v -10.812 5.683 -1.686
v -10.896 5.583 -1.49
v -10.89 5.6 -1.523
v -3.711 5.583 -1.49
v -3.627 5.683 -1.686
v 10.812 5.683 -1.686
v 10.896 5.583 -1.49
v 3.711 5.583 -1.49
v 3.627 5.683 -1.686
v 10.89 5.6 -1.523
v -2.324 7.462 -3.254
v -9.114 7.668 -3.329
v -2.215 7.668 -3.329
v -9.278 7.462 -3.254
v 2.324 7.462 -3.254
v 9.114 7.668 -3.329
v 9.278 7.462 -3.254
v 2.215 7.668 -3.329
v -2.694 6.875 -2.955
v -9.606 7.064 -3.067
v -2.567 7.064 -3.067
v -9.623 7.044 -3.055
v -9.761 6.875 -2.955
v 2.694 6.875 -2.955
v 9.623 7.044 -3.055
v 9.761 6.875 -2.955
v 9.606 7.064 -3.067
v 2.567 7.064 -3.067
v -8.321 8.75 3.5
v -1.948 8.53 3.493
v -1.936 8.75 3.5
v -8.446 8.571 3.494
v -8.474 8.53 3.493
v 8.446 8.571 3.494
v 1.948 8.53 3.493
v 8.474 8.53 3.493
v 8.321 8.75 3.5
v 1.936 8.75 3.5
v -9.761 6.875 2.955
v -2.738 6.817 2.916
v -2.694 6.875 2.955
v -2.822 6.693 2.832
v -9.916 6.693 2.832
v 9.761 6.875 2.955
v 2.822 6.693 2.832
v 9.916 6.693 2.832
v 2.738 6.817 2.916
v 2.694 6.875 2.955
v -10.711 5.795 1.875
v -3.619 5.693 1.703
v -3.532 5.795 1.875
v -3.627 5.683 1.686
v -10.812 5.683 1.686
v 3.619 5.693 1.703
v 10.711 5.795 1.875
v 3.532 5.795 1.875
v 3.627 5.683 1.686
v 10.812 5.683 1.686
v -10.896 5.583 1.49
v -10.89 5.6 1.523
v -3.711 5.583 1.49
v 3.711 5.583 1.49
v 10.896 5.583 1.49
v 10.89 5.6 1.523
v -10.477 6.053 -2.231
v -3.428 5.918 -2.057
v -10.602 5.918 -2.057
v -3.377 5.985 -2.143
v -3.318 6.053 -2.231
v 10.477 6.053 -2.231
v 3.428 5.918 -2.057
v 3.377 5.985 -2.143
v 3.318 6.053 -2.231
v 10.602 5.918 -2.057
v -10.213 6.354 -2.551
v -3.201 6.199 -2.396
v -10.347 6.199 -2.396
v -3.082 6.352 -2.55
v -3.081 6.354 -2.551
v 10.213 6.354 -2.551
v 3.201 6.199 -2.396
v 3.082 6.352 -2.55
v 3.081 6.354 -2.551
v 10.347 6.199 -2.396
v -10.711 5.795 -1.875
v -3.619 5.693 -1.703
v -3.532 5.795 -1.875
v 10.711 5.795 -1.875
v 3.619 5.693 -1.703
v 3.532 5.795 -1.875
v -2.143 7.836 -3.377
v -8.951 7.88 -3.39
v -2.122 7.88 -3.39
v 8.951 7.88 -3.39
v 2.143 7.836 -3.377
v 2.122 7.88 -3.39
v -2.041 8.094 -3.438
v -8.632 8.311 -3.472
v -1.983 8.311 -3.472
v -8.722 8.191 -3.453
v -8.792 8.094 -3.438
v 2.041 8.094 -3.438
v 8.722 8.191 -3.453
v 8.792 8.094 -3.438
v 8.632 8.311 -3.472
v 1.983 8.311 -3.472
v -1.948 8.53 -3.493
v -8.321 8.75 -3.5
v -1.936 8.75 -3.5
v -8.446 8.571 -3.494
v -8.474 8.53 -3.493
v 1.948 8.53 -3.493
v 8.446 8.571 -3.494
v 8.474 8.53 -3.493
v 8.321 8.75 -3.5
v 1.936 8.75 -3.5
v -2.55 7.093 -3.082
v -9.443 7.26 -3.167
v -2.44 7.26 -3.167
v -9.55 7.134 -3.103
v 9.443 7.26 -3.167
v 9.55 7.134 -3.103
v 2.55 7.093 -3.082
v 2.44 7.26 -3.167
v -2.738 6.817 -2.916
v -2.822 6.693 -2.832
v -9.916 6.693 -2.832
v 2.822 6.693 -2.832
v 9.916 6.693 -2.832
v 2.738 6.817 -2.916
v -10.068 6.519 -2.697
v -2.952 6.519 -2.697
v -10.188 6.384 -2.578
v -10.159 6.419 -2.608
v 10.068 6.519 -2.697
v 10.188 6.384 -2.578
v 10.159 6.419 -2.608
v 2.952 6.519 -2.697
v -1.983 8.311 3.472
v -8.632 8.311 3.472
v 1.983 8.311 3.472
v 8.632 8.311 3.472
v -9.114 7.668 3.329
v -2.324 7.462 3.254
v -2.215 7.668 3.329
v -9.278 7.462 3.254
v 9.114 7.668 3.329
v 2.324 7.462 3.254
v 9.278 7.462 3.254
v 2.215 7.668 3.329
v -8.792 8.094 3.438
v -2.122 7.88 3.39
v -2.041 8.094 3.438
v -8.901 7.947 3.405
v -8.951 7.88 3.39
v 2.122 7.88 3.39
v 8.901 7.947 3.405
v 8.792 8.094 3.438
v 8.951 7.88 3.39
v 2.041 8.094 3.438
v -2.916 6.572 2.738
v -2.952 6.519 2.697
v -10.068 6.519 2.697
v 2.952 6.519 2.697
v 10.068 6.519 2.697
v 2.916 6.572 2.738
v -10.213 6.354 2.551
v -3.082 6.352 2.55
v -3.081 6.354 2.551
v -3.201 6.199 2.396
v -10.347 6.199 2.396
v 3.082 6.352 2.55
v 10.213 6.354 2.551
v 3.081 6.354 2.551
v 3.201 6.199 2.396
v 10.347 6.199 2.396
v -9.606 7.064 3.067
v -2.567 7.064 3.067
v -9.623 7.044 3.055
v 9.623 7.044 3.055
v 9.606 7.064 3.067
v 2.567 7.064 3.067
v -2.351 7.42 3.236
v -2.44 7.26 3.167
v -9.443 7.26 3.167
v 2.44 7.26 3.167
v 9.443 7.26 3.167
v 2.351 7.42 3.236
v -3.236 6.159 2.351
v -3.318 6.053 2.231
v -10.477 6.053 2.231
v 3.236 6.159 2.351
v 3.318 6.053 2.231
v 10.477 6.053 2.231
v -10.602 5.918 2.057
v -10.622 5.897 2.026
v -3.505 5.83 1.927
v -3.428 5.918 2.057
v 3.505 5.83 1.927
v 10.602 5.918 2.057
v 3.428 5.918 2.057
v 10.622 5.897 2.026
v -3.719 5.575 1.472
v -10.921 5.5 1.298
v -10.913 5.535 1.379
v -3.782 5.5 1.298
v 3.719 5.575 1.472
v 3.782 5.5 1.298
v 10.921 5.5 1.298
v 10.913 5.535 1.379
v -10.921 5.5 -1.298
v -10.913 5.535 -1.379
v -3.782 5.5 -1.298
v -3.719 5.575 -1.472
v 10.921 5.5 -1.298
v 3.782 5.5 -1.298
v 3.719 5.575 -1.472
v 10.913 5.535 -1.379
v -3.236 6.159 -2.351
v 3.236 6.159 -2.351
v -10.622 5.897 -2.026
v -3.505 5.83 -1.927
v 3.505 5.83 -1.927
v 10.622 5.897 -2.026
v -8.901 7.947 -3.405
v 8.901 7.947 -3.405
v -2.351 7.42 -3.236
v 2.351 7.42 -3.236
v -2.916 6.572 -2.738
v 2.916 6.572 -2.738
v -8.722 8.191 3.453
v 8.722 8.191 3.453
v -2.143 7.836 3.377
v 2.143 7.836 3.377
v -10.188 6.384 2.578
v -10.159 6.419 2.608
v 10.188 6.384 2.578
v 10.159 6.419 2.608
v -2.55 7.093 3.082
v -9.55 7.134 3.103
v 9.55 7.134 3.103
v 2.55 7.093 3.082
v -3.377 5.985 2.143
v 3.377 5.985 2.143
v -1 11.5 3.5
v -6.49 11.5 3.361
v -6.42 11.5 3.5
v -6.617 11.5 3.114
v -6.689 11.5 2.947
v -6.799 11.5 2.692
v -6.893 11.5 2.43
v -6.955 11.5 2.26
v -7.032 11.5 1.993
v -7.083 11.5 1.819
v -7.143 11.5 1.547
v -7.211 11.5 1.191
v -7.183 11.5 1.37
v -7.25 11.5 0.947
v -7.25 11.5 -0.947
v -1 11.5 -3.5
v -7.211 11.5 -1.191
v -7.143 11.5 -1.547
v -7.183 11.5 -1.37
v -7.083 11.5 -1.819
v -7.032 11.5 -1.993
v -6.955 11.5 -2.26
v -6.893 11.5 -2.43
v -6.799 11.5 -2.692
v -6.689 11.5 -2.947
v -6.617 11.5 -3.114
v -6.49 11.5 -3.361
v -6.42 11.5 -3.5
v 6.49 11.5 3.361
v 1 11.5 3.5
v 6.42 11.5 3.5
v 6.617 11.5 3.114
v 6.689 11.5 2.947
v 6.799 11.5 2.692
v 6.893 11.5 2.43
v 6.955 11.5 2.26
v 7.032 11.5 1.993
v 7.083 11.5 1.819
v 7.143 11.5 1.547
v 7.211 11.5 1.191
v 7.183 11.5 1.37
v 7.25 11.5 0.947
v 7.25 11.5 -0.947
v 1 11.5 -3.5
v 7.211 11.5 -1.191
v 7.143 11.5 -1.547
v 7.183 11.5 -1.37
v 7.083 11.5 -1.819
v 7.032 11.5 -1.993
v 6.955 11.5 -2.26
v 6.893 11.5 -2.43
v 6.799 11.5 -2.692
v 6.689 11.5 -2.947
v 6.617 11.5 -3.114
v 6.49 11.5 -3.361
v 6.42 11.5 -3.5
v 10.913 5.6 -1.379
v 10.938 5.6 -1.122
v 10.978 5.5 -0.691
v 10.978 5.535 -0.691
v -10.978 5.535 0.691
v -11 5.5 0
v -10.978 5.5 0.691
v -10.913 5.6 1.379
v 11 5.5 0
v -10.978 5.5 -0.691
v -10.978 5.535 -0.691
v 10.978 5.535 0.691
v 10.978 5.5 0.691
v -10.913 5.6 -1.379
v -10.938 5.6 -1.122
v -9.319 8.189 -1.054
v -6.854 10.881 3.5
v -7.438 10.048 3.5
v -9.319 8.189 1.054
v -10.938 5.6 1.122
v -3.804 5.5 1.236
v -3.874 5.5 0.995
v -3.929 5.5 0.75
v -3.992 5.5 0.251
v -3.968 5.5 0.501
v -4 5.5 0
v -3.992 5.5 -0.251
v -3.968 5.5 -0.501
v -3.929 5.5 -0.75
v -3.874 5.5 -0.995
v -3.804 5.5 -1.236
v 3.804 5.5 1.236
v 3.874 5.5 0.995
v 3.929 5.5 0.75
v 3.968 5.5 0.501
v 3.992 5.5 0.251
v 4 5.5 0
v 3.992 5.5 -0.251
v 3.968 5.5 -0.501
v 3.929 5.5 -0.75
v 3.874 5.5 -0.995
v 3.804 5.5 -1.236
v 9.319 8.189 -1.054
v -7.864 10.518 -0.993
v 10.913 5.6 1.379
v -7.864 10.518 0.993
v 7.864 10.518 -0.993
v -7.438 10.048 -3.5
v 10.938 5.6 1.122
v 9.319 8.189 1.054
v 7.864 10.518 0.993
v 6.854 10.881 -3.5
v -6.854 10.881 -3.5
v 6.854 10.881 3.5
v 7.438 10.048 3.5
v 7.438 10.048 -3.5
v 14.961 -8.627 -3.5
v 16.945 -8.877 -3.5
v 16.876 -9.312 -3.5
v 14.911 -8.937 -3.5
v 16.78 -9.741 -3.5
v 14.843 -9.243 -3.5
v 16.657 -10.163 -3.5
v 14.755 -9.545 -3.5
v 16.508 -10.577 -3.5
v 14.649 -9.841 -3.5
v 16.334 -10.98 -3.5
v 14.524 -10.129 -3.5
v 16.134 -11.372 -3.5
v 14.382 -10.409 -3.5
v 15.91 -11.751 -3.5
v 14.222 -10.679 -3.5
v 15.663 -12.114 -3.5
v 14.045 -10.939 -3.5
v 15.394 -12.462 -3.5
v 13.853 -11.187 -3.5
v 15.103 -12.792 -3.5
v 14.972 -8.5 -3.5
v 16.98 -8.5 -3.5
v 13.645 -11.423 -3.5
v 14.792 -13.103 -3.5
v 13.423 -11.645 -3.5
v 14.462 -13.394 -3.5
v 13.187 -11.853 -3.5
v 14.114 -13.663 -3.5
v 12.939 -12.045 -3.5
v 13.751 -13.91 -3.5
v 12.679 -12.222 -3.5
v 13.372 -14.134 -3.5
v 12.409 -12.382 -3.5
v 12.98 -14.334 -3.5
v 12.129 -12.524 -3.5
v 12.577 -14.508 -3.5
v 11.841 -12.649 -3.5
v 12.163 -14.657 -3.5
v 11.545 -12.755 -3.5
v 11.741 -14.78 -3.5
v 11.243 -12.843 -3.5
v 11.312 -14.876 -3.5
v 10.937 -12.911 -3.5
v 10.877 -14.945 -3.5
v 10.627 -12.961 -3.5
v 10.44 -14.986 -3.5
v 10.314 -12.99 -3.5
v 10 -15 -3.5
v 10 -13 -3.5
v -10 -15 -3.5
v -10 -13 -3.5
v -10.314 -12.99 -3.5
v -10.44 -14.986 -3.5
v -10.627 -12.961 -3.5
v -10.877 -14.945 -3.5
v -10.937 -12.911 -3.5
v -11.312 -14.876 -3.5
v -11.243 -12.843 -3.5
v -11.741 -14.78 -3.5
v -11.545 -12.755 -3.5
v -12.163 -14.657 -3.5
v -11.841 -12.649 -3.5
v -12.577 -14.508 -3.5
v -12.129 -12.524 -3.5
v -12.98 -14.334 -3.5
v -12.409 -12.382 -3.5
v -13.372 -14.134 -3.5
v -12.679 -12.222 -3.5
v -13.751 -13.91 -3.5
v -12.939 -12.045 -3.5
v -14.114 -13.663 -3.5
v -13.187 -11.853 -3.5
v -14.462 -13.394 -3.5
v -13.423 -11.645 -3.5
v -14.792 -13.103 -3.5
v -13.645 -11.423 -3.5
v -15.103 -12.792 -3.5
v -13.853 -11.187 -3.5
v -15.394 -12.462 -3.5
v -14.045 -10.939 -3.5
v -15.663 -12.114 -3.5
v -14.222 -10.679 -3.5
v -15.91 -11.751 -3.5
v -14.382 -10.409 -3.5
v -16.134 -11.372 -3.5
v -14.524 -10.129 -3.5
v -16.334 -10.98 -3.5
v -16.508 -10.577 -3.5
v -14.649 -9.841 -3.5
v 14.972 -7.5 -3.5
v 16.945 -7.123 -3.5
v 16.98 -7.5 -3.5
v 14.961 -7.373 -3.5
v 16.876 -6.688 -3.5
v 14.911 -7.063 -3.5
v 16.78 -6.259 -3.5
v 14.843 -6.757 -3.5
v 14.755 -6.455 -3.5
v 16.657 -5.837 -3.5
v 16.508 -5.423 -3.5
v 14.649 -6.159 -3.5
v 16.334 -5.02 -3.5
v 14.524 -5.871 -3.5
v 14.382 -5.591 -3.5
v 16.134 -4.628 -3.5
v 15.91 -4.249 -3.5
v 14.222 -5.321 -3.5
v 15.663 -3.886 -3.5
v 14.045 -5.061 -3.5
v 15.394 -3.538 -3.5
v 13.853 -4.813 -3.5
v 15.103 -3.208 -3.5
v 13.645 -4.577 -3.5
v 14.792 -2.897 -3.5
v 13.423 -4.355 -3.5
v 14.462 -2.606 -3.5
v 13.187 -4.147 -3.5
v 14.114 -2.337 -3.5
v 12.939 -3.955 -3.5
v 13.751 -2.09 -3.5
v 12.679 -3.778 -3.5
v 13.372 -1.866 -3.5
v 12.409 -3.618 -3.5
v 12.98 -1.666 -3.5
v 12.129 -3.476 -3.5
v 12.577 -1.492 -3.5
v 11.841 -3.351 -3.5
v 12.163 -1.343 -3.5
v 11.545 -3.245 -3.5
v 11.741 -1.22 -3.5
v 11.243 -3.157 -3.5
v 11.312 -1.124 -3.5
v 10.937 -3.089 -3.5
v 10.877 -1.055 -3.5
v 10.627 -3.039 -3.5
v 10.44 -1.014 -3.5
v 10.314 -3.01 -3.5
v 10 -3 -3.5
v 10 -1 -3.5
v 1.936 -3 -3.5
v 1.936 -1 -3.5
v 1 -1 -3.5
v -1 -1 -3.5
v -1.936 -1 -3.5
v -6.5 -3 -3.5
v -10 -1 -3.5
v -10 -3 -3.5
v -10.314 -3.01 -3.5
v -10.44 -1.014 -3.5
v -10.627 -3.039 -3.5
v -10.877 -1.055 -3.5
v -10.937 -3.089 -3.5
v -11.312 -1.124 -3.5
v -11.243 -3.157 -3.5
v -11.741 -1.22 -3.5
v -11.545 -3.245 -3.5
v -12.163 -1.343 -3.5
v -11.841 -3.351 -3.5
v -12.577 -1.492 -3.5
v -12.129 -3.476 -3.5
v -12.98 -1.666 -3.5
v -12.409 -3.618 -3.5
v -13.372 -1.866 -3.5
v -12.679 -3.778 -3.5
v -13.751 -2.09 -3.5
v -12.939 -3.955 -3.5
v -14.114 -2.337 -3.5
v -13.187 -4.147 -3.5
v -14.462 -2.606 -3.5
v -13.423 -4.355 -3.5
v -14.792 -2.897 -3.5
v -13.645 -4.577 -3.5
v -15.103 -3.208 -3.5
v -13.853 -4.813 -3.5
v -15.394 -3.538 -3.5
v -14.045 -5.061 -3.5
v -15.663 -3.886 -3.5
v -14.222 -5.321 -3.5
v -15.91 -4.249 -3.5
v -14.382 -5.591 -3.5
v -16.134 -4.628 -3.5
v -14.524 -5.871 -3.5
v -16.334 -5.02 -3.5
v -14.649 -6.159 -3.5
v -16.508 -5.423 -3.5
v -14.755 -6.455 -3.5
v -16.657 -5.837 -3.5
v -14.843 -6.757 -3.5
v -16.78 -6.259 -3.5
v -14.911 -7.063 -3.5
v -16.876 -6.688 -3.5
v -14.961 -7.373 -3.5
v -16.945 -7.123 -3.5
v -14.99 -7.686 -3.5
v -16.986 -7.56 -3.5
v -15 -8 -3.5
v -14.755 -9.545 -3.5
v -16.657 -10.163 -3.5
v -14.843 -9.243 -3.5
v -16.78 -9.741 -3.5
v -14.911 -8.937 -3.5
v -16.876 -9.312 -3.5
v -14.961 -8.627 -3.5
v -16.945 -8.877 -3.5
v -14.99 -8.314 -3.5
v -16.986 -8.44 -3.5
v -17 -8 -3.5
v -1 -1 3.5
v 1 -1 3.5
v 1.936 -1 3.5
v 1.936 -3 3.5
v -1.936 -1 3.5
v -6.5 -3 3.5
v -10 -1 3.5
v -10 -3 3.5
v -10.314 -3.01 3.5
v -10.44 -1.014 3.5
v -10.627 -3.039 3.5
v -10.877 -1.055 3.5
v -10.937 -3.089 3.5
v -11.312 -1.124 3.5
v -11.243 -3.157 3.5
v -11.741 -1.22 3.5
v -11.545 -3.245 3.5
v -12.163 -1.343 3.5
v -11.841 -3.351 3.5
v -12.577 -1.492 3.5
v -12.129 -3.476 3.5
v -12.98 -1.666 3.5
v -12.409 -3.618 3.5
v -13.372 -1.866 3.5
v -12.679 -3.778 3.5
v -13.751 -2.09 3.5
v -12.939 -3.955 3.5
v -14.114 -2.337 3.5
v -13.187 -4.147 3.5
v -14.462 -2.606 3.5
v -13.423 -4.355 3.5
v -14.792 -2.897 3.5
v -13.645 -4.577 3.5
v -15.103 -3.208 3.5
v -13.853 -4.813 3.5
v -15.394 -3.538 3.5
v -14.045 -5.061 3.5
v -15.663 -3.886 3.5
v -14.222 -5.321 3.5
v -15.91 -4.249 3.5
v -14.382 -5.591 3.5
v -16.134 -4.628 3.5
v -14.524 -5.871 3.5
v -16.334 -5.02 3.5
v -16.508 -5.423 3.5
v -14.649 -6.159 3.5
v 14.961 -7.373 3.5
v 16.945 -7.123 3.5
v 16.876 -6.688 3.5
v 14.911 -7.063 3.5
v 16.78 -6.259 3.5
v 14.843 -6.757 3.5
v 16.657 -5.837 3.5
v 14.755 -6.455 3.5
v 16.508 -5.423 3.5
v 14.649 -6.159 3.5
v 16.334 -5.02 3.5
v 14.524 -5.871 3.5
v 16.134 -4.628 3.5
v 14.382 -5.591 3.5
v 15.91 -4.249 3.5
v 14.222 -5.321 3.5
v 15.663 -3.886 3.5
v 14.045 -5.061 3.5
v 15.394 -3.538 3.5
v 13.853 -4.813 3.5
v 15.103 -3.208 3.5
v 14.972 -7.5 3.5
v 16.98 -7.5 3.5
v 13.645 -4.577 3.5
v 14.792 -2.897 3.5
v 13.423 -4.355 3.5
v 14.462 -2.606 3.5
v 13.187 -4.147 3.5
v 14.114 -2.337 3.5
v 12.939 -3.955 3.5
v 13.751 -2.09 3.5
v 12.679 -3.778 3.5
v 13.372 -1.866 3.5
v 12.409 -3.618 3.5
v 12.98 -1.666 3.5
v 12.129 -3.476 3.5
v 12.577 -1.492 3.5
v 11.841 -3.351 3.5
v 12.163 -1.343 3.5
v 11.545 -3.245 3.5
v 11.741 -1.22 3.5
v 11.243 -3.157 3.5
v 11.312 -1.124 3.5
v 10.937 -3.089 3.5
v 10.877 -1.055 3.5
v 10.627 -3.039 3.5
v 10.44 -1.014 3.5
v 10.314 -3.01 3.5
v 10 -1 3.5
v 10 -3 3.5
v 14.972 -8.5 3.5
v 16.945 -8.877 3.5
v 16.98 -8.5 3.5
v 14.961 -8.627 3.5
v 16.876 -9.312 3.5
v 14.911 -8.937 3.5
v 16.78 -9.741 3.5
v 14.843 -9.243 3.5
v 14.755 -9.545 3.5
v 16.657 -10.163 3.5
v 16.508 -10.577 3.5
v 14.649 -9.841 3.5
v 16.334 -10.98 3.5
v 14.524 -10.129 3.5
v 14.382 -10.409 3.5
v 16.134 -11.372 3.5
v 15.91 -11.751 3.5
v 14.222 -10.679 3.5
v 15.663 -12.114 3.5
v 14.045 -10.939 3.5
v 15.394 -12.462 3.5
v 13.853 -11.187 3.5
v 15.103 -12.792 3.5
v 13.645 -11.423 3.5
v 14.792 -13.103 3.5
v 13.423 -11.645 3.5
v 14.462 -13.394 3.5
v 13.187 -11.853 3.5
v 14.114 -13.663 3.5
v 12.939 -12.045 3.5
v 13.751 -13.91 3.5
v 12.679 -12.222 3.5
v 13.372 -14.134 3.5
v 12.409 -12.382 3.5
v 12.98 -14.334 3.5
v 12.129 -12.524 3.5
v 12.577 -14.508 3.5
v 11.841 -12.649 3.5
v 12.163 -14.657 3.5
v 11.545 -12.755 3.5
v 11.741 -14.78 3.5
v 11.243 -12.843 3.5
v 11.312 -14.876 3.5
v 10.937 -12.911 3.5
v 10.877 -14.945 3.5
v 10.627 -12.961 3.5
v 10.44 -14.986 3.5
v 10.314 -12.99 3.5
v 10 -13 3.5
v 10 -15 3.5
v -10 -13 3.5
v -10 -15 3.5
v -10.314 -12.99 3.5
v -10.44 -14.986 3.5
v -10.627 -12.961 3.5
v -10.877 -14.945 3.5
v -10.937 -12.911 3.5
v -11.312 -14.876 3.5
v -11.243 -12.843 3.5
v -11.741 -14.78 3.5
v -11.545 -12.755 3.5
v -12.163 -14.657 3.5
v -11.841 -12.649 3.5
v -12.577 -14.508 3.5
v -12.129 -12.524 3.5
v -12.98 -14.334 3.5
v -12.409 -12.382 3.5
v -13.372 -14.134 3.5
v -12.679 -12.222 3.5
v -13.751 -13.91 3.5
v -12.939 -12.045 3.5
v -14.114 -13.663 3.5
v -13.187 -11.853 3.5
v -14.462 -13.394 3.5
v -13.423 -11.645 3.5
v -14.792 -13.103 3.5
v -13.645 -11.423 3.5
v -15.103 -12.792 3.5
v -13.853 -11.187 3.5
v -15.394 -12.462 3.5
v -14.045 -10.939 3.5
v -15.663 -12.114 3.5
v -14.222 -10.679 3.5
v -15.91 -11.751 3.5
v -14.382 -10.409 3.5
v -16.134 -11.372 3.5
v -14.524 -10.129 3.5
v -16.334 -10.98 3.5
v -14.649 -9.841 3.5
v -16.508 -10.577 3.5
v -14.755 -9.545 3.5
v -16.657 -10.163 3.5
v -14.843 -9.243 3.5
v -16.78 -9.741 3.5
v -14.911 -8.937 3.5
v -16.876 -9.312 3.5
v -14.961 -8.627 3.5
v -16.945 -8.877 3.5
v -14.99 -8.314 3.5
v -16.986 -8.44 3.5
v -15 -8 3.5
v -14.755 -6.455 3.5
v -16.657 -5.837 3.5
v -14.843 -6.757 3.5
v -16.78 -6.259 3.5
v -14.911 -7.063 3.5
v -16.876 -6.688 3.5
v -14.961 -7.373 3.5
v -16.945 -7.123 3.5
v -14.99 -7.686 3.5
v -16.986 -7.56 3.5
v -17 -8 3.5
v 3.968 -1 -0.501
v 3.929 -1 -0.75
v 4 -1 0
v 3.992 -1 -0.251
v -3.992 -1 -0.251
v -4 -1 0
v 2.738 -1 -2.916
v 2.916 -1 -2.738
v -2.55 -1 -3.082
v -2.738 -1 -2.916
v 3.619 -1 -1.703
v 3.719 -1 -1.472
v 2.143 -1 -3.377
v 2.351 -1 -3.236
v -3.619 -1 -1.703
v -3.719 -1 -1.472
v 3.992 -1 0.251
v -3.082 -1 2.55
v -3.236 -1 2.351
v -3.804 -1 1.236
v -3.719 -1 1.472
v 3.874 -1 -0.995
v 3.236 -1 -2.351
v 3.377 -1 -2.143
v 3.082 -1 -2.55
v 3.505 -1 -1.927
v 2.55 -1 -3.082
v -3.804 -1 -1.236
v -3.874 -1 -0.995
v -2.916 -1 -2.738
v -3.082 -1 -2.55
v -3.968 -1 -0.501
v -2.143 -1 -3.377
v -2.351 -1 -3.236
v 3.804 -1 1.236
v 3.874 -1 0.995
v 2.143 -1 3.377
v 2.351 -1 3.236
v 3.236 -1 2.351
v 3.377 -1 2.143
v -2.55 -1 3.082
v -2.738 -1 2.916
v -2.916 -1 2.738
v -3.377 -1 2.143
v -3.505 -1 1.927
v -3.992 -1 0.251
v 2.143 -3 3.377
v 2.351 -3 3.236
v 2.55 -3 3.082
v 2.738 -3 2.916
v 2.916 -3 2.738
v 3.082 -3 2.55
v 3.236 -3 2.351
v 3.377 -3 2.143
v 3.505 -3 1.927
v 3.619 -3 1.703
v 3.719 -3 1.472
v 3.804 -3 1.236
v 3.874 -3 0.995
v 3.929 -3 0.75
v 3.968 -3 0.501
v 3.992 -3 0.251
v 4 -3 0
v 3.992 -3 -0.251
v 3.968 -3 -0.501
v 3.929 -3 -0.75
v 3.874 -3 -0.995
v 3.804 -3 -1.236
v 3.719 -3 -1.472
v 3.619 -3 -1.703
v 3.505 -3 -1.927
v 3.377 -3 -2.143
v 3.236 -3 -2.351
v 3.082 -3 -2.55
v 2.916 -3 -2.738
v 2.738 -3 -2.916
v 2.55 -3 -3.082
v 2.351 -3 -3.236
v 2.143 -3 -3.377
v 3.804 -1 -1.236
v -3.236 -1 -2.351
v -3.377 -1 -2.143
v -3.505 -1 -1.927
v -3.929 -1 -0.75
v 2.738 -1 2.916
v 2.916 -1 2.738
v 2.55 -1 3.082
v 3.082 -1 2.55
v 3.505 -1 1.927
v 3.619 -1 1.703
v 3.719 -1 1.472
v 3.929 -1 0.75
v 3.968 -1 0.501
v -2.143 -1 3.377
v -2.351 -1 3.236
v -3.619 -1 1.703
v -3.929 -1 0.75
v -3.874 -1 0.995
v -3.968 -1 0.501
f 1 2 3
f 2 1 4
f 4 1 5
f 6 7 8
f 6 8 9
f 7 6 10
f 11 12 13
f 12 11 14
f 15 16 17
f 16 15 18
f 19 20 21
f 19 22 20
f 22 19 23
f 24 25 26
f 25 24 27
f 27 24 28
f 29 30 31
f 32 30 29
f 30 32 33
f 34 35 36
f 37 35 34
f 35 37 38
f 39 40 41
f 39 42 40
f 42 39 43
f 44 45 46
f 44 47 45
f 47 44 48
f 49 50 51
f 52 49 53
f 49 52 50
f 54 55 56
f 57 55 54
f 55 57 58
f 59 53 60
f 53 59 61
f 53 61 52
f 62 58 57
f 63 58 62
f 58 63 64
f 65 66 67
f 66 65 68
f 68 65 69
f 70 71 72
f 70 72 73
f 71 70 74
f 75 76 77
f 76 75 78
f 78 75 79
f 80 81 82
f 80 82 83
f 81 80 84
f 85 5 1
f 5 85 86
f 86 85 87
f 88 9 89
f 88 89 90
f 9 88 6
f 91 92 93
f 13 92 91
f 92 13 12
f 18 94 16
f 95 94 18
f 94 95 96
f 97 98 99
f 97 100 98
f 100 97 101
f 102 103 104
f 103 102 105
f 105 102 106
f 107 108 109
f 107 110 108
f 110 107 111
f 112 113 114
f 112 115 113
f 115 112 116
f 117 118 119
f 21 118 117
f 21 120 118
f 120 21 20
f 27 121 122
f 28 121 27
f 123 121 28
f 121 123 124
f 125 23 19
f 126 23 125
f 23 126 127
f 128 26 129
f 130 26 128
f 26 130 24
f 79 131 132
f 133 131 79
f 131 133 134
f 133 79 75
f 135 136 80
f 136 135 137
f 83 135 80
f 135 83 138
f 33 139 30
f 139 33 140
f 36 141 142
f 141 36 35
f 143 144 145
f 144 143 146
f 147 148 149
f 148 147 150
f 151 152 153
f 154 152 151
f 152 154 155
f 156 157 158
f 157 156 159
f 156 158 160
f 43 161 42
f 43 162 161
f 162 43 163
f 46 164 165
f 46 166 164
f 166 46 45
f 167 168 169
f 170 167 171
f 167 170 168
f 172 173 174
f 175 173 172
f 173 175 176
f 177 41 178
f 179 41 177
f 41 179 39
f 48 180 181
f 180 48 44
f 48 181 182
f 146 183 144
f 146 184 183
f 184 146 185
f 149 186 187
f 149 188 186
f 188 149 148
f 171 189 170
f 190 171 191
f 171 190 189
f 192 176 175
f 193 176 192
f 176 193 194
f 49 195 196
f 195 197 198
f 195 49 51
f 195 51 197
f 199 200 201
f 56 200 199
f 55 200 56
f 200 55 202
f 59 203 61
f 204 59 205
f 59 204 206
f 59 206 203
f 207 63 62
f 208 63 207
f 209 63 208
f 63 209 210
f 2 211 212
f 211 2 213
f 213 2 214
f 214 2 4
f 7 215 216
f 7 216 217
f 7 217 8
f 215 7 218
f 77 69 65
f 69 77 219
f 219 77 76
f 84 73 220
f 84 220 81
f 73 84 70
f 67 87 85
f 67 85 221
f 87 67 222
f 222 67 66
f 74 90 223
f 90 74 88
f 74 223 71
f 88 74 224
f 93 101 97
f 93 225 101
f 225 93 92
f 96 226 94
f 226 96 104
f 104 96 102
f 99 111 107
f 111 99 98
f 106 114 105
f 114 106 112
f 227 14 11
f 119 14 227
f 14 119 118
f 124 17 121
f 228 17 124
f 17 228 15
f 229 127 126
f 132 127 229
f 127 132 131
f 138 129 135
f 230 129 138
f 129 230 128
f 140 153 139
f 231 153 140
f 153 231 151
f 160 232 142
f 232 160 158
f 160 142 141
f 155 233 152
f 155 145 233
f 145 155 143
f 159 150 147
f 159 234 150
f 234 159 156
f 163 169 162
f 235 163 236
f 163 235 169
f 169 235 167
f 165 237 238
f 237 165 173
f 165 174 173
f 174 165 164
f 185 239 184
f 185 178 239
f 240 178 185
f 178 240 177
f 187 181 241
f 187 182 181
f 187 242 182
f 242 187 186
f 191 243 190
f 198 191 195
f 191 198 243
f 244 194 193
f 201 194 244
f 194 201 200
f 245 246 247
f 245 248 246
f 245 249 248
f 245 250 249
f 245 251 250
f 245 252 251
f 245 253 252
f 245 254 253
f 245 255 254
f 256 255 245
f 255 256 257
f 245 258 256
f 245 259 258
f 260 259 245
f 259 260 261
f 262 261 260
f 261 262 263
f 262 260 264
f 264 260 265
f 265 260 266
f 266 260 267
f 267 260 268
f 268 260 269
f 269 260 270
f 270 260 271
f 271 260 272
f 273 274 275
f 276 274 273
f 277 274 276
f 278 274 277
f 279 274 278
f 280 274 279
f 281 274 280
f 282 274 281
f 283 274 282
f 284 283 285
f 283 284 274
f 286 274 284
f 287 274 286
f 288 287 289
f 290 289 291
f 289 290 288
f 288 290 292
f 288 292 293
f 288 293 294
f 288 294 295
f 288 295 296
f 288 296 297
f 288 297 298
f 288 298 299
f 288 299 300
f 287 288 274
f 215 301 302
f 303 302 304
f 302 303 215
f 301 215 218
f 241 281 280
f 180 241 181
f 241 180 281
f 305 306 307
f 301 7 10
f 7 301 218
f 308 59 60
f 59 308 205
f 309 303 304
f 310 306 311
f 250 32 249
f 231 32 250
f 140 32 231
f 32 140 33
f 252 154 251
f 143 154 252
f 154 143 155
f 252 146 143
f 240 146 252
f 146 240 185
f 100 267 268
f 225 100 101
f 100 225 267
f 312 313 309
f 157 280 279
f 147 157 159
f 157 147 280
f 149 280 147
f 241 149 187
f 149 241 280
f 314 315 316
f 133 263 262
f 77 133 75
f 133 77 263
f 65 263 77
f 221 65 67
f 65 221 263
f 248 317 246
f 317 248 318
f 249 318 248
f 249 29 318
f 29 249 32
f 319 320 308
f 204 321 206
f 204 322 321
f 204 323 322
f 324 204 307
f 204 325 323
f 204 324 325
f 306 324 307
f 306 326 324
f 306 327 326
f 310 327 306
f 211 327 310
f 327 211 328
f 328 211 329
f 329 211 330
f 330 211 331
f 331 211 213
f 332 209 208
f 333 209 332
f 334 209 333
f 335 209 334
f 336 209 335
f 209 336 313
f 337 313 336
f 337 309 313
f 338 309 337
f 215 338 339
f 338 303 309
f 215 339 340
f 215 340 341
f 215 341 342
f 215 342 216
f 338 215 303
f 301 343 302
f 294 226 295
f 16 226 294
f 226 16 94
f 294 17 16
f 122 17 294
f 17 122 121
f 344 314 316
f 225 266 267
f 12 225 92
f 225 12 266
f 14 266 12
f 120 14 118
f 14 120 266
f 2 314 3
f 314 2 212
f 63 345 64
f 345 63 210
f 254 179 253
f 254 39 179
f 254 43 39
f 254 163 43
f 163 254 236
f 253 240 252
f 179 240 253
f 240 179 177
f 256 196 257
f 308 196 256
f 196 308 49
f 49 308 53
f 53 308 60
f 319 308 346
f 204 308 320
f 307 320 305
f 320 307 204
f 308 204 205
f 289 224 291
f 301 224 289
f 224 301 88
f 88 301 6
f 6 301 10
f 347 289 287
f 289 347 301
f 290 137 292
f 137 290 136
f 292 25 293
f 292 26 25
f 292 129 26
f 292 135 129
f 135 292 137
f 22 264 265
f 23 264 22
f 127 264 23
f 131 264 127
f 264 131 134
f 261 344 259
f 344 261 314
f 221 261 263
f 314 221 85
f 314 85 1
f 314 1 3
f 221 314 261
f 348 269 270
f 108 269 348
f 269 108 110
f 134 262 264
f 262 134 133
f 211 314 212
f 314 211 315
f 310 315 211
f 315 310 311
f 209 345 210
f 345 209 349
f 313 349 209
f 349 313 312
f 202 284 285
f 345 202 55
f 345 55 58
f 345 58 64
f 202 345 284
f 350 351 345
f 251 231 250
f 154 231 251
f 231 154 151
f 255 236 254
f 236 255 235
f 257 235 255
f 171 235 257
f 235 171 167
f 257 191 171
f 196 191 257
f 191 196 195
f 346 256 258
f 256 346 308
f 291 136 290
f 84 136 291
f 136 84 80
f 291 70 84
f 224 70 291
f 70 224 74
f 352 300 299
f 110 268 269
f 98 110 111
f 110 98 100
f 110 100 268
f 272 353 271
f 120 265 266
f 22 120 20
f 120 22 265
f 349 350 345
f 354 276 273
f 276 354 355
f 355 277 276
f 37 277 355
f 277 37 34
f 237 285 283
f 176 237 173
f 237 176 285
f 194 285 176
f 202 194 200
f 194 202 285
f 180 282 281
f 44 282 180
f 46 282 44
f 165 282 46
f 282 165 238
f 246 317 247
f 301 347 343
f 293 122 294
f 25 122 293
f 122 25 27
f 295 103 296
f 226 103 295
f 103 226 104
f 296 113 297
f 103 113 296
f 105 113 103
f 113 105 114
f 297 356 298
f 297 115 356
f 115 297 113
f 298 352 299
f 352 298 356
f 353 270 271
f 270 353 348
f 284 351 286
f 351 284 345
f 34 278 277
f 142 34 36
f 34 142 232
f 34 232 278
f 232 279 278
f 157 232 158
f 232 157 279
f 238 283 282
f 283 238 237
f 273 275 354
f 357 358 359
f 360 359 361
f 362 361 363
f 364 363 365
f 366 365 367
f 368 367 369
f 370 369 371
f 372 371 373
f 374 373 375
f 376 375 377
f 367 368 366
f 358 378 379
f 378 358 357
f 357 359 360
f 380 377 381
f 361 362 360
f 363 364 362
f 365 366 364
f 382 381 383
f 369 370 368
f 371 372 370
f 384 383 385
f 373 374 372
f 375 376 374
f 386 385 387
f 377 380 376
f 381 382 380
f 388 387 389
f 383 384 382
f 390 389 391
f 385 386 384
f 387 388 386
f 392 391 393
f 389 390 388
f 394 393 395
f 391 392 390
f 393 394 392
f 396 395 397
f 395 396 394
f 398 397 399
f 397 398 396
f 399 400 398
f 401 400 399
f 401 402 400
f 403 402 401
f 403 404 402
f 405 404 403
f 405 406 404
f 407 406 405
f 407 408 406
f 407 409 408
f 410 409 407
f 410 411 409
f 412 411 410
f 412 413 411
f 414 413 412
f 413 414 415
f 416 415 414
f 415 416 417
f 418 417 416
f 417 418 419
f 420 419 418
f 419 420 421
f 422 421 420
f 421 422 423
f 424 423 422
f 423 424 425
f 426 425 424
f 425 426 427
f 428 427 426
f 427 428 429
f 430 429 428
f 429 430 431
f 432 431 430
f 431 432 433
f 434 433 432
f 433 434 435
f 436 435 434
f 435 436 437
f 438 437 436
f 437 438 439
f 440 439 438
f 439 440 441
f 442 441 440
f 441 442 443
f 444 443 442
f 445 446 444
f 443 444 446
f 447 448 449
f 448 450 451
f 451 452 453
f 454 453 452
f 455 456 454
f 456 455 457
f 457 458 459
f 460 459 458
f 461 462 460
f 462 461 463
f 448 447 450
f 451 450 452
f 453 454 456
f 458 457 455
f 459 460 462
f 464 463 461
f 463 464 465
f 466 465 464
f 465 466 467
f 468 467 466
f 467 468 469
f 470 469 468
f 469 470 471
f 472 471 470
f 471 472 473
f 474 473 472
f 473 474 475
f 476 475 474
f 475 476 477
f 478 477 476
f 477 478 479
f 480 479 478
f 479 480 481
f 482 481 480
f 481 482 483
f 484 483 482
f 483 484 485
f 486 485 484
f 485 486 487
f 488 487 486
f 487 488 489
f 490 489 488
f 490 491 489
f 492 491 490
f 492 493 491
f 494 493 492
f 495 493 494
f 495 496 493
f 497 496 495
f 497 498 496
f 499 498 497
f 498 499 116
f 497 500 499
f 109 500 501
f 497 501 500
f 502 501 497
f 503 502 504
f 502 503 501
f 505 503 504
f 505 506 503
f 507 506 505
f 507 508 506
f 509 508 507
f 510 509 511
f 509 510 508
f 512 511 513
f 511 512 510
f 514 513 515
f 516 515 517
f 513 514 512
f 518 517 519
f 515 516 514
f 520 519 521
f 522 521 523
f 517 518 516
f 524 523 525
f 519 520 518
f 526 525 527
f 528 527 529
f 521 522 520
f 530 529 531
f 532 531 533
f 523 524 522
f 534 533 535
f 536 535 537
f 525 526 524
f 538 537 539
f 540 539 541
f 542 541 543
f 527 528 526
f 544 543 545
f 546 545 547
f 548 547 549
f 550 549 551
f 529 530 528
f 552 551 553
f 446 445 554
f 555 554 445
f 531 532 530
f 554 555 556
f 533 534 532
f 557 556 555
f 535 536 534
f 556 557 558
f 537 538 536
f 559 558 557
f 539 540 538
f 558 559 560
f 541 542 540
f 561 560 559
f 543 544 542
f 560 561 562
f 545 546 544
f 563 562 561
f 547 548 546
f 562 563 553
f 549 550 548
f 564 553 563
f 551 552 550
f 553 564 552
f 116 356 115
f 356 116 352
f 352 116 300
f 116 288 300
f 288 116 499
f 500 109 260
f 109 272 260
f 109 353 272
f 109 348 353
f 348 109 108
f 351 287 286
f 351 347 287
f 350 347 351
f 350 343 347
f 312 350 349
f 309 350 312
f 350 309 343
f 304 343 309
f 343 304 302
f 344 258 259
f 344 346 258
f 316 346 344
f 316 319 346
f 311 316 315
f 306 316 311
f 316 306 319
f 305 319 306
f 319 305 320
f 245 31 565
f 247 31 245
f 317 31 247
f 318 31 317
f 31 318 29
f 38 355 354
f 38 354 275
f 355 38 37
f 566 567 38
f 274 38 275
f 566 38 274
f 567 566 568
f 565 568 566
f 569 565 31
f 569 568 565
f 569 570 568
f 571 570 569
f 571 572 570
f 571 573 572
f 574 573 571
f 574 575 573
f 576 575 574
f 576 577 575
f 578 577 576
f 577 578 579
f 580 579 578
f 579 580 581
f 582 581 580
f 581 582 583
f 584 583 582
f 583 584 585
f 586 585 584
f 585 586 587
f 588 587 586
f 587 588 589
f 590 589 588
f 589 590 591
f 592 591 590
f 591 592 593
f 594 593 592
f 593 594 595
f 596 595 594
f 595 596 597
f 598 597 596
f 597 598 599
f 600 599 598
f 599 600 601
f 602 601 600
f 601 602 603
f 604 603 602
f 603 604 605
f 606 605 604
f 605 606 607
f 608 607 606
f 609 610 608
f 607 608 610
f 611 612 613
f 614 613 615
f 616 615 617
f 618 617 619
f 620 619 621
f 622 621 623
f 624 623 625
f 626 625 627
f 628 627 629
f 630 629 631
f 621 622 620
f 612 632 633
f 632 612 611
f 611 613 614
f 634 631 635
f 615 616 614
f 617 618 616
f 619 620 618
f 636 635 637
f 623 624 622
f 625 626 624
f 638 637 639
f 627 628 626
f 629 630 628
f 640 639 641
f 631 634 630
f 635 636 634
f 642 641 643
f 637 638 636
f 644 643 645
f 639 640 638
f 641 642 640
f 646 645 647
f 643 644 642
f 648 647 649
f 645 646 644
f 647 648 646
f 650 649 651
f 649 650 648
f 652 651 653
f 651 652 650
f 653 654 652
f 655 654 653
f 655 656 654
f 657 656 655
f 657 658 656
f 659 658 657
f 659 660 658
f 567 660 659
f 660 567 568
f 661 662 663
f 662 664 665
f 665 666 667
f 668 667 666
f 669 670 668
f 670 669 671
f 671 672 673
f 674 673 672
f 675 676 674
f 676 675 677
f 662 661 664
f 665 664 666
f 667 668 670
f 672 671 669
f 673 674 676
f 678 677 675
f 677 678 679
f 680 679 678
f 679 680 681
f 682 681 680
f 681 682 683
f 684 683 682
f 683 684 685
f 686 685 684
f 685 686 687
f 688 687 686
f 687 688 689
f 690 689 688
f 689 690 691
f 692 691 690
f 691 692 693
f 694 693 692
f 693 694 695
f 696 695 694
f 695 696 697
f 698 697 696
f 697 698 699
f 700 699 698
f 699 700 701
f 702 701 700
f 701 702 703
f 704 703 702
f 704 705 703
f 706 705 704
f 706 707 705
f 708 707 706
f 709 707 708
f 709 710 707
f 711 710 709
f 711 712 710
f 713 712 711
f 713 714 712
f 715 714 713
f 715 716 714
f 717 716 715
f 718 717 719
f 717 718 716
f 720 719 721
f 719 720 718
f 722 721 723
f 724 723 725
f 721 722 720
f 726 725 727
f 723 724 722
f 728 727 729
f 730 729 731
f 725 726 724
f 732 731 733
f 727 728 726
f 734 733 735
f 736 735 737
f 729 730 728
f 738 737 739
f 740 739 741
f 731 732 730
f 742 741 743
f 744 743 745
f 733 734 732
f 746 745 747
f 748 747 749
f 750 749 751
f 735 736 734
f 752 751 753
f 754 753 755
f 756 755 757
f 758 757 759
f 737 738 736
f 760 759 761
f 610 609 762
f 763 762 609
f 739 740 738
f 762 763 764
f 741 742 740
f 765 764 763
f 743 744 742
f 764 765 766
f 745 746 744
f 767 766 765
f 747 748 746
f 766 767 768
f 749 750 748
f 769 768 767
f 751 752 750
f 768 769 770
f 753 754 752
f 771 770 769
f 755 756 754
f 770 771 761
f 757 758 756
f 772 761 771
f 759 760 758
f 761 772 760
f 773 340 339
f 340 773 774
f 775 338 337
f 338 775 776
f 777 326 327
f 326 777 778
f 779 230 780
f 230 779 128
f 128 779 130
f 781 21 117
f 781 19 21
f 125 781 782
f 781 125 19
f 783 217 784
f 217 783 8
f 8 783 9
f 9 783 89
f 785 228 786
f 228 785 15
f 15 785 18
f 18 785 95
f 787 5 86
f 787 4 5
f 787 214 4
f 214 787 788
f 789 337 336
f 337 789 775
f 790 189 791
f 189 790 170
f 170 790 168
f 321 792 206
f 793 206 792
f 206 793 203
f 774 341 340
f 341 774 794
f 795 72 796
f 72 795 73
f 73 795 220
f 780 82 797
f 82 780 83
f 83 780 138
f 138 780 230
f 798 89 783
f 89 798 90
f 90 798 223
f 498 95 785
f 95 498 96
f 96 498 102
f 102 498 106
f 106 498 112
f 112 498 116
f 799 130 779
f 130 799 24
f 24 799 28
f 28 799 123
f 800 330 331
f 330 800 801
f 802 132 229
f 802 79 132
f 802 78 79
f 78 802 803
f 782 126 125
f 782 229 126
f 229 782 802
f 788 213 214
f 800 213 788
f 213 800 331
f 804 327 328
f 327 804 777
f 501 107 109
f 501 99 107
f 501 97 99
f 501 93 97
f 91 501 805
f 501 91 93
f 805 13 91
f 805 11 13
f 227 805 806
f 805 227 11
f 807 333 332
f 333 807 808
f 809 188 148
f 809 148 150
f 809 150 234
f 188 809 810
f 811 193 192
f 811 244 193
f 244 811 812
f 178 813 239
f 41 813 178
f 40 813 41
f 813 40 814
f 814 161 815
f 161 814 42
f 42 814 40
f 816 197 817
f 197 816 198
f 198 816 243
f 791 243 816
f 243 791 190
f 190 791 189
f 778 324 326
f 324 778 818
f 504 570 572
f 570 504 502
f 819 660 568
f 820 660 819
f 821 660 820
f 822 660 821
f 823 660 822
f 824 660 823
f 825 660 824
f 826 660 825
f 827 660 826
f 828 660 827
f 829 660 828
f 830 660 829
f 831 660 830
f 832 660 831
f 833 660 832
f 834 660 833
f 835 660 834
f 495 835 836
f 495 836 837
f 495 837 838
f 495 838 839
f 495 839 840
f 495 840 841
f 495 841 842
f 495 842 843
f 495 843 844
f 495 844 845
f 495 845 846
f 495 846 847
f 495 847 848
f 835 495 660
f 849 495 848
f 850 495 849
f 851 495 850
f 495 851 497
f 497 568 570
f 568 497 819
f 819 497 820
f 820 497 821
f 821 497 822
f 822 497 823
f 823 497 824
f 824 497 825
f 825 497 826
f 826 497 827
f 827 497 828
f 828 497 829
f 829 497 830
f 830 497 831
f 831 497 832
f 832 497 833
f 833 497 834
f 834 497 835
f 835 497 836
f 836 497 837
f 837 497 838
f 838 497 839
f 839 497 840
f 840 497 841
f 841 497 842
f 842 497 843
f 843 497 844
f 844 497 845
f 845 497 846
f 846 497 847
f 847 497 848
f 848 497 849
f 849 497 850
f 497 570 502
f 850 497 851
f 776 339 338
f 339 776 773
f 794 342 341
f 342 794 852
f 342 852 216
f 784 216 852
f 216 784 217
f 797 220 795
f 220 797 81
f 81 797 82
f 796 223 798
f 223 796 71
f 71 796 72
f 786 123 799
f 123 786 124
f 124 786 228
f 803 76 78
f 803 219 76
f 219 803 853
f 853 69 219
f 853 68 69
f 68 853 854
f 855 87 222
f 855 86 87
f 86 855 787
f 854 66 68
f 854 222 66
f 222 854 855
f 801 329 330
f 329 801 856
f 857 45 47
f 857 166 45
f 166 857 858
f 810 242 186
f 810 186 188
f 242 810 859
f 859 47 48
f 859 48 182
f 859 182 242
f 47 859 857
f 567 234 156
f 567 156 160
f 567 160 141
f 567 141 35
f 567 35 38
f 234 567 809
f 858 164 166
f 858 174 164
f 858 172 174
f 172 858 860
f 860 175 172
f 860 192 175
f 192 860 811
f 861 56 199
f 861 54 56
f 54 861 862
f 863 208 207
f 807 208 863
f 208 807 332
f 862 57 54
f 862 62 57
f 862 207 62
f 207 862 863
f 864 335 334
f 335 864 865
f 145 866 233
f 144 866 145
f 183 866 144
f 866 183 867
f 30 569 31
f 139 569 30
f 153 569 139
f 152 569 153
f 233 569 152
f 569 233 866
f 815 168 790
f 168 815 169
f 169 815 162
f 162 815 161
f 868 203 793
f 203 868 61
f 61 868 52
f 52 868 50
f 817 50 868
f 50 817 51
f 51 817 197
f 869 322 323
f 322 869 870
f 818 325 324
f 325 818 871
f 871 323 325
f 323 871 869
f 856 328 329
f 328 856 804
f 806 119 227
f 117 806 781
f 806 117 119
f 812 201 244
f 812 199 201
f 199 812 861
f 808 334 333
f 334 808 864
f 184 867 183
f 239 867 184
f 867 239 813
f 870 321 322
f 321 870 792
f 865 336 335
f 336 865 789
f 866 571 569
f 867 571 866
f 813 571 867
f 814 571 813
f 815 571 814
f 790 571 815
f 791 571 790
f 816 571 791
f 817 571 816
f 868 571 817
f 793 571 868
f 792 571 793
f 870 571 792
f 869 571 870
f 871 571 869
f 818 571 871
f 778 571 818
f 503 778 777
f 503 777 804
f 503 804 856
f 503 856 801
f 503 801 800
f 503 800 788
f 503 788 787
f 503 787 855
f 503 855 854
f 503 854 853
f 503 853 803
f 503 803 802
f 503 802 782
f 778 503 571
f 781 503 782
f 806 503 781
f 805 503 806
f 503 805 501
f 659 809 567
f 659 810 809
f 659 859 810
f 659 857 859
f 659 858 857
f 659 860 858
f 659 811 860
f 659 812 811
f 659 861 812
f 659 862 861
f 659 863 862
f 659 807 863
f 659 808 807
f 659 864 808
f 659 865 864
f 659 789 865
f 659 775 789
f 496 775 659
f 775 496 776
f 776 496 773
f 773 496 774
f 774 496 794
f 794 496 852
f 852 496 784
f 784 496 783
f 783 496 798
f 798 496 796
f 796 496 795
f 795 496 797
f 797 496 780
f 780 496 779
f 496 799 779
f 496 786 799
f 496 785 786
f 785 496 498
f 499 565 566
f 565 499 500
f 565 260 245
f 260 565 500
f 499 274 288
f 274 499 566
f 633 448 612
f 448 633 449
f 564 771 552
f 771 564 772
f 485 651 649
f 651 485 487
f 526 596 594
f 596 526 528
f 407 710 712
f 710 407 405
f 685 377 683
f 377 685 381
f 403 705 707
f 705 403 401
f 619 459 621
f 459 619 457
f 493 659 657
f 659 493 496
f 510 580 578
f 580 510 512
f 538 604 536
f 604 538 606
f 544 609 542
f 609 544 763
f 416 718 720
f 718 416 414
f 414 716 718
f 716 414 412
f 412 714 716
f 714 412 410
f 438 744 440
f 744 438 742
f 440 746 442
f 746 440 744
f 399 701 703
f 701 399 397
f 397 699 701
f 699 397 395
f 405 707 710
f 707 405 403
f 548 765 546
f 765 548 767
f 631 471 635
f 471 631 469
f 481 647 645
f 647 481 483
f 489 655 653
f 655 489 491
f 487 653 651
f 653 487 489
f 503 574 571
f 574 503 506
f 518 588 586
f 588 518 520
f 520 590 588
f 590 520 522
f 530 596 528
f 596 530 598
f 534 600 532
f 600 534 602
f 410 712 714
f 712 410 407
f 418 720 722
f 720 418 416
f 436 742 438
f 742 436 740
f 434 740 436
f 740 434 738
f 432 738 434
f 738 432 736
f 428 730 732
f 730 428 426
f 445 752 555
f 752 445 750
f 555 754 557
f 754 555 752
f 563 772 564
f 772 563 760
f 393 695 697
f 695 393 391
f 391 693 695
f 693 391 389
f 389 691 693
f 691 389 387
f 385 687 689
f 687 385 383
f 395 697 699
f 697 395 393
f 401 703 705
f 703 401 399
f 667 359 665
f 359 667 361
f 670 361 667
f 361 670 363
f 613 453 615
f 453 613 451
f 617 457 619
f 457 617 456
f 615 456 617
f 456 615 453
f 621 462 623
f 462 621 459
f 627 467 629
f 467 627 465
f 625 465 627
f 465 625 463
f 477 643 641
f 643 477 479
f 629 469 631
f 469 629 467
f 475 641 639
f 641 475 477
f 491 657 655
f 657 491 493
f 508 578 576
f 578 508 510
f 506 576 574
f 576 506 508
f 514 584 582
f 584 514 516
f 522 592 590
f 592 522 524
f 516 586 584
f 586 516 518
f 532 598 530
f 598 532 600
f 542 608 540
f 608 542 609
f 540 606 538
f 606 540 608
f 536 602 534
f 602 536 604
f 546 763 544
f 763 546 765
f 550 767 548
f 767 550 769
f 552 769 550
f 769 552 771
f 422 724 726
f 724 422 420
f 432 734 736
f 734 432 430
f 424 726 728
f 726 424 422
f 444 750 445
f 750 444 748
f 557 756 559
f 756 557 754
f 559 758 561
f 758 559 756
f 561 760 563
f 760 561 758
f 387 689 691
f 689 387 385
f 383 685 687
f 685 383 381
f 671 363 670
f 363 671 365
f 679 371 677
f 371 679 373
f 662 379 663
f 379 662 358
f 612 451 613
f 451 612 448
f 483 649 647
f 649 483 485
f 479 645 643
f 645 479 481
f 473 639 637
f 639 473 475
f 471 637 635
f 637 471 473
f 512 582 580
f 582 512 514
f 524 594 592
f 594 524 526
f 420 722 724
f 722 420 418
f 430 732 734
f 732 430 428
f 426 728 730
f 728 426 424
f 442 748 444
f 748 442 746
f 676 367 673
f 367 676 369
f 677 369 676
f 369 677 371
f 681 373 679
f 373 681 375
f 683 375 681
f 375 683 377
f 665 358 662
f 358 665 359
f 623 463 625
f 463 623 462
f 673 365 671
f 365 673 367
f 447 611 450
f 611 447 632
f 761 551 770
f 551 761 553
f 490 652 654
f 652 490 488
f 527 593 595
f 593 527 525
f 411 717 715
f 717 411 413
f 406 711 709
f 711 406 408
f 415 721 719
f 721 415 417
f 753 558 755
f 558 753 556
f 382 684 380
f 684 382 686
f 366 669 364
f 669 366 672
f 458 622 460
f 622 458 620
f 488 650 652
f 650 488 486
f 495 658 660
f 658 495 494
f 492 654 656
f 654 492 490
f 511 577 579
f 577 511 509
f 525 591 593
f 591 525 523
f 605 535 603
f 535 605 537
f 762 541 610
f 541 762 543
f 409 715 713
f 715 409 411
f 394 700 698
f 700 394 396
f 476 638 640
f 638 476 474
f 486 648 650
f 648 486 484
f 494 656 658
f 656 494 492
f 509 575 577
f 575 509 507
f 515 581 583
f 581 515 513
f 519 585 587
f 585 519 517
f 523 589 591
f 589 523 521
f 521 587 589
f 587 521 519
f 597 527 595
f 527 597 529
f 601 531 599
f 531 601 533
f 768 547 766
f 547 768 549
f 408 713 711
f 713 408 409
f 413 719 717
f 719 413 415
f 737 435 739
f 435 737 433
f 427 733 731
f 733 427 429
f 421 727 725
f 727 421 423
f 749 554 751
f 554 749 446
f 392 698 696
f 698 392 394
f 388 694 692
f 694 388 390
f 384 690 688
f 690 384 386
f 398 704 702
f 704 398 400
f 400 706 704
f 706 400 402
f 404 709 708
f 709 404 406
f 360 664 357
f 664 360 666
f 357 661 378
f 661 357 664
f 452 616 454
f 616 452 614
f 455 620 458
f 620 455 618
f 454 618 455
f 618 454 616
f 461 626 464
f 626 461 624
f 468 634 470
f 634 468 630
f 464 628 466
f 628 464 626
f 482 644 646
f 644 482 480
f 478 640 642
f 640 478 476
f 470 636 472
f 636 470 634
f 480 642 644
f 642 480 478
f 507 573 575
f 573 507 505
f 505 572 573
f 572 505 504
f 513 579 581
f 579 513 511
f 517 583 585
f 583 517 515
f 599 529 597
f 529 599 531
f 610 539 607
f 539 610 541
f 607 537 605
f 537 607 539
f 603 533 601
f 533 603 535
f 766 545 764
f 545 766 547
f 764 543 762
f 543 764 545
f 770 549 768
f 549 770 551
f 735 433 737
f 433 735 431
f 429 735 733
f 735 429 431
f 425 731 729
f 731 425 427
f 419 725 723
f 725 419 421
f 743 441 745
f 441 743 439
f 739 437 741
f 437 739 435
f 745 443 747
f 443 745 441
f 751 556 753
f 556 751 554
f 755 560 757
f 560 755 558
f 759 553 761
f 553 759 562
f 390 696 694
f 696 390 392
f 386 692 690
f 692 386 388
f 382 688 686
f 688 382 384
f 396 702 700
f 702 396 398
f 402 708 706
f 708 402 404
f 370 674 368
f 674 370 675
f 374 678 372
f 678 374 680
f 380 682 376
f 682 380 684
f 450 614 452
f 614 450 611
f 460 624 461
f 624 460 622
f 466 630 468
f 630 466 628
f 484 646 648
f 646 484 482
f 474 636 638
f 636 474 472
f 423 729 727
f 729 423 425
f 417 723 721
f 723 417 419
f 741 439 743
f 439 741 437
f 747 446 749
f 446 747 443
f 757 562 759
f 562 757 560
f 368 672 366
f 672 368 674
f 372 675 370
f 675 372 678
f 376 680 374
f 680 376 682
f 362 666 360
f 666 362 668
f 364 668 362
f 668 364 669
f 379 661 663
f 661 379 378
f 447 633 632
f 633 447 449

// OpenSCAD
$fn=100;
/*
    Parametric Cable Hooks For Tslot Mounting
    By Brian Khuu (2020)

    Got a desk with tslot rails, would be nice to mount cable on it...

    Inspired by https://www.thingiverse.com/thing:2676595 "V-Slot Cable Clips by pekcitron November 30, 2017"
*/

/* [Tslot Spec] */
// CenterDepth
tslot_centerdepth = 6.5;
// CenterWidth
tslot_centerwidth = 8; // Gap to slot the clip though
// For the wedge... its based on a 4040mm Tslot... so may need to modify polygon() in this script

/* [Hook Spec] */
// Spacing between centerpoint
hookcenterspacing=10;
// Hook Diameter
hookdia=10;
// Hook Flange
hookflange=3;
// Hook Width
hookwidth=7;
// Hook Thickness
hookthickness=2;

/* [Tslot Model] */
model_slot_gap = 10;
model_slot_side = 15;

translate([0, -1, 0])
union()
{
    difference()
    {
        union()
        {
            // Tslot Mount Inner
            translate([0, tslot_centerdepth, 0])
                intersection()
                {
                    heightlim=6;
                    es=1;
                    linear_extrude(height = hookwidth, center = true)
                        polygon(points=[[-10-es,0],[-5-es,8],[5+es,8],[10+es,0]]);
                    rotate([-90,0,0])
                        intersection()
                        {
                            hull()
                            {
                                translate([0,0,0]) cylinder(r=10+es, h=0.1);
                                translate([0,0,8]) cylinder(r=5+es, h=0.1);
                            }
                            union()
                            {
                                translate([0,0,heightlim/2+tslot_centerdepth/4])
                                    cube([20+es*2,20,heightlim-tslot_centerdepth/2], center = true);
                                intersection()
                                {
                                    rotate([0,90,0])
                                        translate([-tslot_centerdepth/2,0,0])
                                        cylinder(r=hookwidth/2, h=20+es*2, center = true);
                                    cube([20+es*2,20,hookwidth+1], center = true);
                                }
                            }
                        }
                }

            // tslot mount shaft
            translate([0, -hookthickness, 0])
            rotate([-90,0,0])
                intersection()
                {
                    cheight = tslot_centerdepth+hookthickness+hookwidth/2;
                    union()
                    {
                        cylinder(r=tslot_centerwidth/2, h=cheight);
                        translate([-hookwidth/2+1, 0, hookthickness-hookthickness/2])
                            cube([tslot_centerwidth,hookwidth,hookthickness], center=true);
                    }
                    translate([0, 0, cheight/2])
                        cube([tslot_centerwidth+10, hookwidth, cheight], center=true);
                }
        }

        //
        translate([0, 100/2, 0])
            cube([2,100,100], center=true);

    }

    // Hook
    translate([0, -hookdia/2-hookthickness, 0])
    union()
    {
        difference()
        {
            hull()
            {
                translate([hookdia/2+hookcenterspacing/2,0,0])
                    cylinder(r=hookdia/2+hookthickness, h=hookwidth, center=true);
                translate([-hookdia/2-hookcenterspacing/2,0,0])
                    cylinder(r=hookdia/2+hookthickness, h=hookwidth, center=true);
            }
            hull()
            {
                translate([hookdia/2+hookcenterspacing/2,0,0])
                    cylinder(r=hookdia/2, h=hookwidth+1, center=true);
                translate([-hookdia/2-hookcenterspacing/2,0,0])
                    cylinder(r=hookdia/2, h=hookwidth+1, center=true);
            }
            translate([hookdia+hookdia/2+hookthickness/2,0,0])
                cube([hookthickness+1,1,hookwidth+2], center=true);
        }
    }
}

%translate([model_slot_side/2+model_slot_gap/2,0,0]) cube([model_slot_side,0.1,100], center=true);
%translate([-model_slot_side/2-model_slot_gap/2,0,0]) cube([model_slot_side,0.1,100], center=true);
